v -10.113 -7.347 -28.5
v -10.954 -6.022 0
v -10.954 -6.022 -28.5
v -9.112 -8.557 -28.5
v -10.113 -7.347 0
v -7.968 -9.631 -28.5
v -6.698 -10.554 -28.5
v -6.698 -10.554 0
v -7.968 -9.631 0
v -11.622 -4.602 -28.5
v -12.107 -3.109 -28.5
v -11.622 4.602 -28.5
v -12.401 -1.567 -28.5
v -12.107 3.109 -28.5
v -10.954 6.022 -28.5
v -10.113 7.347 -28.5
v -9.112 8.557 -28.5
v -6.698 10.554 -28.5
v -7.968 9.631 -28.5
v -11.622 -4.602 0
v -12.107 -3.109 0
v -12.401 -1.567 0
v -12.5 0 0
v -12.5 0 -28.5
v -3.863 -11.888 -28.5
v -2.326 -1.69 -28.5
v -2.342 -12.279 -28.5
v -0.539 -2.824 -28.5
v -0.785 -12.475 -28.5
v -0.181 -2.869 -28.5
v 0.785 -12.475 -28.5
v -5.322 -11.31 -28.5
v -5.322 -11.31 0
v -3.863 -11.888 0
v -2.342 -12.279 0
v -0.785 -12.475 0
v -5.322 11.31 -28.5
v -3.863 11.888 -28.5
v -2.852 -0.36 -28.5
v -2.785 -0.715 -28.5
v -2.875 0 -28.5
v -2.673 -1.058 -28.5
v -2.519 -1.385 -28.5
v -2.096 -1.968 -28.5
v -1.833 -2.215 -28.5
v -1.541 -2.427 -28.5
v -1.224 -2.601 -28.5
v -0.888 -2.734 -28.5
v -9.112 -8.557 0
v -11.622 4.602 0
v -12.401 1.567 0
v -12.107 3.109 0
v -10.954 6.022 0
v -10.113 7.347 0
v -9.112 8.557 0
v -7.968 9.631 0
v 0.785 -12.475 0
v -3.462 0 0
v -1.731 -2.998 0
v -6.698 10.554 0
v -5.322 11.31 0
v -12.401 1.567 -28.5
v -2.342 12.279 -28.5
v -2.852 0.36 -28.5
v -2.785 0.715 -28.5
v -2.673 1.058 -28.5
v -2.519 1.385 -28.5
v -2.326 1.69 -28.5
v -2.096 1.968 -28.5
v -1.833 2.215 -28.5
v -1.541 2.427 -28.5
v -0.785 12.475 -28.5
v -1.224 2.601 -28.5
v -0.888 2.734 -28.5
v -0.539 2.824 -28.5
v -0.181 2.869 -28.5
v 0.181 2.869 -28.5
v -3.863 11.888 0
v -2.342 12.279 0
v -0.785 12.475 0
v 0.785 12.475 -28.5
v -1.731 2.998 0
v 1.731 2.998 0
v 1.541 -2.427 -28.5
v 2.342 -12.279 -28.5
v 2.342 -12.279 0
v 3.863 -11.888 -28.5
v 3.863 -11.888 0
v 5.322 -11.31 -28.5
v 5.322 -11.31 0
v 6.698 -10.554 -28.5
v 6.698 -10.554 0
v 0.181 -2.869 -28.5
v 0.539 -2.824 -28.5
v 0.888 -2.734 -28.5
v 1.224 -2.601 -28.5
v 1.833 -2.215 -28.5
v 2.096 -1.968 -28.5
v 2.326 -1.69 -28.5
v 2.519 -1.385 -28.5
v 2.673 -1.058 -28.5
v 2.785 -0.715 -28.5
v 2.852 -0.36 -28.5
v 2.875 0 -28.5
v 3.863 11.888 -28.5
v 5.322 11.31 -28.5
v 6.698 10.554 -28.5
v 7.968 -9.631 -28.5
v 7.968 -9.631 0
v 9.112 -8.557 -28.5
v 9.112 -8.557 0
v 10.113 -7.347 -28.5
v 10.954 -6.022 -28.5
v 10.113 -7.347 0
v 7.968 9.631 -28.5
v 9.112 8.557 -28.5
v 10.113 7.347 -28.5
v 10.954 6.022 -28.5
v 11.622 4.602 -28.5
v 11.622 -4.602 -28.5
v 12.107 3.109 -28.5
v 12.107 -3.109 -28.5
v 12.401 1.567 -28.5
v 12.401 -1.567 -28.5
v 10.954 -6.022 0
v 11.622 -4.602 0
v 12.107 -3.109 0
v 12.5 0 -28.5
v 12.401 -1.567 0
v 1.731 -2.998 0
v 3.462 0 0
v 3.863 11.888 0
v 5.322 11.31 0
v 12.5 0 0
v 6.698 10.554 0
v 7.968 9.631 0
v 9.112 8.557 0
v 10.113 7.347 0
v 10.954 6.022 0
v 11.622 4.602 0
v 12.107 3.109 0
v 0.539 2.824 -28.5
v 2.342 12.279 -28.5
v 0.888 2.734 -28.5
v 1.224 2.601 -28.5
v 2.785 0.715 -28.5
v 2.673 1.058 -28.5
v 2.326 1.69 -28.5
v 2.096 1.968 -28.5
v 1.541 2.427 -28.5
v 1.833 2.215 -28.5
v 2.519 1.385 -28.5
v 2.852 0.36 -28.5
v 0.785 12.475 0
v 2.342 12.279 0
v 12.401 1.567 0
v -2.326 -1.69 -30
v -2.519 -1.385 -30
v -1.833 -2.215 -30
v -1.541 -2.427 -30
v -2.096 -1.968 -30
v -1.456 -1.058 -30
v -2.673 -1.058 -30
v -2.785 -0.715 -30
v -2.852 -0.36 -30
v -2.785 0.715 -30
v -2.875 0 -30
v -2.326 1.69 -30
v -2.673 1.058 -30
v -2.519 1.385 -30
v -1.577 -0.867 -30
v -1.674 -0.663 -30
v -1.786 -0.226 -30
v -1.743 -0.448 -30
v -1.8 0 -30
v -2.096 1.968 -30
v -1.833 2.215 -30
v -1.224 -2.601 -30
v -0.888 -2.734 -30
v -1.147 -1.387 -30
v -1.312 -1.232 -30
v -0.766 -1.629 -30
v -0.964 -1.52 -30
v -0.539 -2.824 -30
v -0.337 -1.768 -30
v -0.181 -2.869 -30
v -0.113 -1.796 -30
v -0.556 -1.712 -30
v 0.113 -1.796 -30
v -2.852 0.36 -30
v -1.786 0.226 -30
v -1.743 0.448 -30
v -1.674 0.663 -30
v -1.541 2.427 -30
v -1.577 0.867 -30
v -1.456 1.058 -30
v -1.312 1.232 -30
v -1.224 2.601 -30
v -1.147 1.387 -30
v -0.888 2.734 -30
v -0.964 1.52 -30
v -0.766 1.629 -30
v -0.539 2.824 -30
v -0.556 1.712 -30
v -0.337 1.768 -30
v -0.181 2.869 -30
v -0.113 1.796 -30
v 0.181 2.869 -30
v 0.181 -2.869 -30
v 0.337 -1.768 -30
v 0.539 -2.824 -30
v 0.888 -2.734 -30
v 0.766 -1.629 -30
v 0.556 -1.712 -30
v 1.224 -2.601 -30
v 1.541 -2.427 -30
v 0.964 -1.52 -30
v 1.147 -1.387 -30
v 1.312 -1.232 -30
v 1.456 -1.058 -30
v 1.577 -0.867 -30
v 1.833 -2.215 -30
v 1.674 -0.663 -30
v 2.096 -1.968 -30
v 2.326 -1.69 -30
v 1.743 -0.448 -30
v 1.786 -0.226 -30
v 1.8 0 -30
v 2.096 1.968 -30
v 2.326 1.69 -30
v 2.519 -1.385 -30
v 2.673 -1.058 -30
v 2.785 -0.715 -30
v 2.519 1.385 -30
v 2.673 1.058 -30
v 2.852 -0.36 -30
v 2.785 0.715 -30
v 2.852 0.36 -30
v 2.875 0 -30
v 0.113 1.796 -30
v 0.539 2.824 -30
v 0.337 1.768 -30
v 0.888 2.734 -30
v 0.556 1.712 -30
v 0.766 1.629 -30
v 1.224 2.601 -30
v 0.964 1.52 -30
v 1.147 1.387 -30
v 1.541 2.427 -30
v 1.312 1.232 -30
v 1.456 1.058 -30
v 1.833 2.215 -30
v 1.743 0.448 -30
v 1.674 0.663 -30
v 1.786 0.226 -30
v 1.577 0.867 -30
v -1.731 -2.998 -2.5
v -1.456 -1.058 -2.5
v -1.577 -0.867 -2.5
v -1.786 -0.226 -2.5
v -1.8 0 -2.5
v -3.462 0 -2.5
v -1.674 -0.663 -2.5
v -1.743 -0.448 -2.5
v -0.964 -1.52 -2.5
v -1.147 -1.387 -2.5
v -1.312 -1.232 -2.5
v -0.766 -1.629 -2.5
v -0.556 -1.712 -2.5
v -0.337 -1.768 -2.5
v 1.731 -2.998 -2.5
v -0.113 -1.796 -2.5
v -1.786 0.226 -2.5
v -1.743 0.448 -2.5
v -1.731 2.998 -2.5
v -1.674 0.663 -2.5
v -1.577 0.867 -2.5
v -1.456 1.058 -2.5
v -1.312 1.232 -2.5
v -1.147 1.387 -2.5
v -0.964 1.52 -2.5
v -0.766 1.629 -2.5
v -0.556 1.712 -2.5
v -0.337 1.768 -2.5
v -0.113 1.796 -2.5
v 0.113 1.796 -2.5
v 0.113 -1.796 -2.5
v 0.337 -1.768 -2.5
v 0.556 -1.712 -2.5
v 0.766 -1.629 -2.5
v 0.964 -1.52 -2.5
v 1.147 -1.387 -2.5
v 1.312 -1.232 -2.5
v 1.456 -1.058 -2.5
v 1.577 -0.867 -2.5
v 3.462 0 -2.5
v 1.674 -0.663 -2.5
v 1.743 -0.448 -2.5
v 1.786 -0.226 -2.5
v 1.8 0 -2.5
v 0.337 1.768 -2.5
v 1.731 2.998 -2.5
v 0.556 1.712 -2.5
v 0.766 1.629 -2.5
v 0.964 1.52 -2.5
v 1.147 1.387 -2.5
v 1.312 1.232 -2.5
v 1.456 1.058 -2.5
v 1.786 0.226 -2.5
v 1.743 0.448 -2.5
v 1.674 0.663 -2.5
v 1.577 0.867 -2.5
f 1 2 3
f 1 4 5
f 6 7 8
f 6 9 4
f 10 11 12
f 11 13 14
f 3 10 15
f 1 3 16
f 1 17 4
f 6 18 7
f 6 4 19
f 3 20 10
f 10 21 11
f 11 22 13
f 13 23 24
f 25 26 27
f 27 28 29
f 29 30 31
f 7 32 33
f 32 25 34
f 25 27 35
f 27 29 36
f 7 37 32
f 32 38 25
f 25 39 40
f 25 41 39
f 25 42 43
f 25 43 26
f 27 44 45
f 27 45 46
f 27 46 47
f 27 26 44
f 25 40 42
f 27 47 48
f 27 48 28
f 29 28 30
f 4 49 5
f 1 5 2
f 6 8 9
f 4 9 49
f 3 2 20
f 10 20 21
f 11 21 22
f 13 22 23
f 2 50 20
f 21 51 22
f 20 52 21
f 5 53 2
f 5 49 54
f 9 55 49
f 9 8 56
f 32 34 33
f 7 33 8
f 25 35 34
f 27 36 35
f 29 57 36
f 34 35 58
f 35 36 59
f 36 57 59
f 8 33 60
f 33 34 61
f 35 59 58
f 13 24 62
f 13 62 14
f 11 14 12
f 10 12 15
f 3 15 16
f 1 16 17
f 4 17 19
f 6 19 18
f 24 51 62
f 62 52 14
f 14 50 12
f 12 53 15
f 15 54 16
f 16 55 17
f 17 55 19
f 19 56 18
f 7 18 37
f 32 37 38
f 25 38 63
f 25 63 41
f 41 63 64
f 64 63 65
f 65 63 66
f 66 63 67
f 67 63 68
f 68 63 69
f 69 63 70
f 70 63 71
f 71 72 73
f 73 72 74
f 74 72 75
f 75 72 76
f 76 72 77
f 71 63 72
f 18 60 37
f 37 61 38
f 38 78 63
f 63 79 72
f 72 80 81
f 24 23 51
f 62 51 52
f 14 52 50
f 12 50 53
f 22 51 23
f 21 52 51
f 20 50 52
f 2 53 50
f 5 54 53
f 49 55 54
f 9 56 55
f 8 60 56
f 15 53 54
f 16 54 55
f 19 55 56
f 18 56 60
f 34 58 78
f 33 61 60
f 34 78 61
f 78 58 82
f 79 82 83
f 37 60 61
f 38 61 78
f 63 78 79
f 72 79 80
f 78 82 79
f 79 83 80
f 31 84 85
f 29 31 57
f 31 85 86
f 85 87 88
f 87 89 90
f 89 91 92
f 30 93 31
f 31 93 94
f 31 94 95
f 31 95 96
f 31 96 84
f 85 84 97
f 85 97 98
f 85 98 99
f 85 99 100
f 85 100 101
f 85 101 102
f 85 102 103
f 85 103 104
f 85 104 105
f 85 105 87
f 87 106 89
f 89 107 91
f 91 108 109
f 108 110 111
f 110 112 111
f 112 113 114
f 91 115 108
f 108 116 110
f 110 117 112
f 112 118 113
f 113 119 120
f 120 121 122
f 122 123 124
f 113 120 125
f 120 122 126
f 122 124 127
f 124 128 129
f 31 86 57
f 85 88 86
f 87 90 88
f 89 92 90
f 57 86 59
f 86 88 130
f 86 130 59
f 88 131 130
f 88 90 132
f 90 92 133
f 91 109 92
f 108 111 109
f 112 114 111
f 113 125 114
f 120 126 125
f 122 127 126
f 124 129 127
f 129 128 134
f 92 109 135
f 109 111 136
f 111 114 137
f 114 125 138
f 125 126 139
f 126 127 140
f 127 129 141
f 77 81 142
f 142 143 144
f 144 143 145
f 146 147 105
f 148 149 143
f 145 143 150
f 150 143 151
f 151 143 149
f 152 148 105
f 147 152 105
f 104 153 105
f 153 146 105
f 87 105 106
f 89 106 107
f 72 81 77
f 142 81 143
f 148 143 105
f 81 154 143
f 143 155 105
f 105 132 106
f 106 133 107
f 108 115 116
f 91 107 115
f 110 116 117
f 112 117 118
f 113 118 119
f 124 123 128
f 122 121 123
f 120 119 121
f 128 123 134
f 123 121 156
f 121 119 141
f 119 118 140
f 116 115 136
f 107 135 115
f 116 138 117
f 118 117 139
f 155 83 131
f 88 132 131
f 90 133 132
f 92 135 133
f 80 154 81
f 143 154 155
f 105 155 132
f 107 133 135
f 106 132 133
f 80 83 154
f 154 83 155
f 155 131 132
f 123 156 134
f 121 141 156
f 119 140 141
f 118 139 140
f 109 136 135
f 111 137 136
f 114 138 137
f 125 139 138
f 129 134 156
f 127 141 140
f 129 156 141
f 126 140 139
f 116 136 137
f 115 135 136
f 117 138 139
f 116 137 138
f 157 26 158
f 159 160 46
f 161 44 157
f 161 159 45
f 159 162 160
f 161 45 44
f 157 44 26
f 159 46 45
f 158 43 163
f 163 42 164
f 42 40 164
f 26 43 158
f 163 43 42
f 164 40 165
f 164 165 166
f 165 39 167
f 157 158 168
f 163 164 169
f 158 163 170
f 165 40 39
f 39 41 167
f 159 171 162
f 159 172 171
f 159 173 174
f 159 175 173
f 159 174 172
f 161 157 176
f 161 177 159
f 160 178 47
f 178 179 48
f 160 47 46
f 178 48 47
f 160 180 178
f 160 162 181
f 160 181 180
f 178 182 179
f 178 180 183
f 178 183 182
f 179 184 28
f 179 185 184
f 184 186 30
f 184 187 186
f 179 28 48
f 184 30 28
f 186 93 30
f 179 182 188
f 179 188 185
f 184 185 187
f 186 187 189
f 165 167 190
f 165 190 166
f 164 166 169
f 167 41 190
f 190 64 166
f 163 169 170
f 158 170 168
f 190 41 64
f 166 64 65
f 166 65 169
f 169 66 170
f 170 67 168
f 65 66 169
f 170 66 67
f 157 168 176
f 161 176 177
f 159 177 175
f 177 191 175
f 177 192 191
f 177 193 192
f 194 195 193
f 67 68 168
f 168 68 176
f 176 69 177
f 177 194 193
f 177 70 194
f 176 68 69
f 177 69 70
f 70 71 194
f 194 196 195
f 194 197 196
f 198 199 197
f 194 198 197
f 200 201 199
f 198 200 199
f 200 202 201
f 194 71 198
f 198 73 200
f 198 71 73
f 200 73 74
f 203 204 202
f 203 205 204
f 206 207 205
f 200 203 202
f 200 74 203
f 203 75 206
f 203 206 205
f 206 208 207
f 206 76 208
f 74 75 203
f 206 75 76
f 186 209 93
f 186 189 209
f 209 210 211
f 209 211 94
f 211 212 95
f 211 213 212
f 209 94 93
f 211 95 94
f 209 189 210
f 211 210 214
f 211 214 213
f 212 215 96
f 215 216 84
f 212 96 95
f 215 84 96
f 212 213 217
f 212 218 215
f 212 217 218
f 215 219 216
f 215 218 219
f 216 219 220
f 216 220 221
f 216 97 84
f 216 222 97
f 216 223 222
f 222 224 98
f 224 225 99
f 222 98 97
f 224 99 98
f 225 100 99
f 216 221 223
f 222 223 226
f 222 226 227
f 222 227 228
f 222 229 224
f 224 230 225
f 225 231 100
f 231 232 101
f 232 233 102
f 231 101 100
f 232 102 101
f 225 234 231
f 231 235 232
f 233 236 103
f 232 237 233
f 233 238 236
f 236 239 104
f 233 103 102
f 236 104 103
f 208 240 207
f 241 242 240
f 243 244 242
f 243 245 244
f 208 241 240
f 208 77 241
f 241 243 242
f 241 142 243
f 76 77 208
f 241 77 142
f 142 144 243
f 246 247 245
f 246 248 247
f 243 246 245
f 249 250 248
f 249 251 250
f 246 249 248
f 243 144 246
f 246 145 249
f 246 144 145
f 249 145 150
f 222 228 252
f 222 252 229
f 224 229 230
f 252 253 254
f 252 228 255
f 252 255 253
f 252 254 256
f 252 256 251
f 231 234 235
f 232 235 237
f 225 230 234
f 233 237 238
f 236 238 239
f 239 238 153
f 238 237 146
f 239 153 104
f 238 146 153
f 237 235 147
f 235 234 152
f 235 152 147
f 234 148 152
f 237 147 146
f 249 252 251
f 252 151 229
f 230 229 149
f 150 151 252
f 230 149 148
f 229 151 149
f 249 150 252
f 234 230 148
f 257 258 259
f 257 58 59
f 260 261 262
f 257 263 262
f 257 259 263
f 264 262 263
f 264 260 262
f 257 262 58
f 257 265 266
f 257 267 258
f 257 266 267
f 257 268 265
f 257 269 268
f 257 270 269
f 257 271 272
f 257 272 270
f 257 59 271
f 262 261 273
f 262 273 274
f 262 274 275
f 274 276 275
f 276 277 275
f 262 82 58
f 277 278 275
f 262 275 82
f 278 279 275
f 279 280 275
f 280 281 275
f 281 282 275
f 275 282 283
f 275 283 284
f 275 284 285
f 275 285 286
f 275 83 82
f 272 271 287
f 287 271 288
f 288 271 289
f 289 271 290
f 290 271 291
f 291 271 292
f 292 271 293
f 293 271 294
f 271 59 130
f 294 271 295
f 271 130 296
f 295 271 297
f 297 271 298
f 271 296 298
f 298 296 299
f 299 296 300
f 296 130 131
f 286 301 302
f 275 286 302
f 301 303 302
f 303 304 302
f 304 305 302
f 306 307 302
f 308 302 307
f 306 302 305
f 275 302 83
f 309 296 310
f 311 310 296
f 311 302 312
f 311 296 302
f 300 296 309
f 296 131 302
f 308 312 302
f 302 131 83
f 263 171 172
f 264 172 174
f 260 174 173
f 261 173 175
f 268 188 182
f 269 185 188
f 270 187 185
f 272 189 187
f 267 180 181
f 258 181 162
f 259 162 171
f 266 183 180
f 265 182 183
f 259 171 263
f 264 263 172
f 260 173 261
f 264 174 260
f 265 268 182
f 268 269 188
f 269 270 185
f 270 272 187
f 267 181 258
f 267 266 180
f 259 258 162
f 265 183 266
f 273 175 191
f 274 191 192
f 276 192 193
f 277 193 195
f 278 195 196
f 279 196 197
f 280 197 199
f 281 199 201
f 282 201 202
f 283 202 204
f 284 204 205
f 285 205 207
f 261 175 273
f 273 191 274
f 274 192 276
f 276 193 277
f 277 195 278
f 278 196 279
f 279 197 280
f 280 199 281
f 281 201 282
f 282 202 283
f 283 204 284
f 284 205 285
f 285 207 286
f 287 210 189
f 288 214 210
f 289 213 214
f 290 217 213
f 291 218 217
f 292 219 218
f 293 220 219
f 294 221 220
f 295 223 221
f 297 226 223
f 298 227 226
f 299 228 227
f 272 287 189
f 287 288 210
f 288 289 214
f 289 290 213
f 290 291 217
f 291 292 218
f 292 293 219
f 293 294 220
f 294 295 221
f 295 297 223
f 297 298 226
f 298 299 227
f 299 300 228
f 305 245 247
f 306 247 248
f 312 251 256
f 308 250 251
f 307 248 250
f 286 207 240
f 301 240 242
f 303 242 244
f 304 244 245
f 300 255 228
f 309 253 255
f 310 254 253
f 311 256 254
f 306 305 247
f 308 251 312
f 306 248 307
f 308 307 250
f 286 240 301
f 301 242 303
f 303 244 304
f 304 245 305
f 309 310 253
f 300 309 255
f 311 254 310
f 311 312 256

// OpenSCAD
$fn = 50;

difference() {
	union() {
		translate(v = [0, 0, -28.5]) {
			cylinder(h = 28.5, r = 12.5);
		}
		#translate(v = [0, 0, -30.0]) {
			cylinder(h = 30, r = 2.875);
		}
	}
	union() {
		translate(v = [0, 0, 0]) {
			rotate(a = [0, 0, 0]) {
				difference() {
					union() {
						translate(v = [0, 0, -2.5]) {
							linear_extrude(height = 2.5) {
								polygon(points = [[3.4619999999999997, 0.0], [1.7310000000000003, 2.9981799479017264], [-1.7309999999999992, 2.9981799479017264], [-3.4619999999999997, 4.2397272186481365e-16], [-1.7310000000000014, -2.998179947901726], [1.7309999999999977, -2.9981799479017277]]);
							}
						}
					}
					union();
				}
			}
		}
		#translate(v = [0, 0, -100.0]) {
			cylinder(h = 200, r = 1.8);
		}
	}
}
